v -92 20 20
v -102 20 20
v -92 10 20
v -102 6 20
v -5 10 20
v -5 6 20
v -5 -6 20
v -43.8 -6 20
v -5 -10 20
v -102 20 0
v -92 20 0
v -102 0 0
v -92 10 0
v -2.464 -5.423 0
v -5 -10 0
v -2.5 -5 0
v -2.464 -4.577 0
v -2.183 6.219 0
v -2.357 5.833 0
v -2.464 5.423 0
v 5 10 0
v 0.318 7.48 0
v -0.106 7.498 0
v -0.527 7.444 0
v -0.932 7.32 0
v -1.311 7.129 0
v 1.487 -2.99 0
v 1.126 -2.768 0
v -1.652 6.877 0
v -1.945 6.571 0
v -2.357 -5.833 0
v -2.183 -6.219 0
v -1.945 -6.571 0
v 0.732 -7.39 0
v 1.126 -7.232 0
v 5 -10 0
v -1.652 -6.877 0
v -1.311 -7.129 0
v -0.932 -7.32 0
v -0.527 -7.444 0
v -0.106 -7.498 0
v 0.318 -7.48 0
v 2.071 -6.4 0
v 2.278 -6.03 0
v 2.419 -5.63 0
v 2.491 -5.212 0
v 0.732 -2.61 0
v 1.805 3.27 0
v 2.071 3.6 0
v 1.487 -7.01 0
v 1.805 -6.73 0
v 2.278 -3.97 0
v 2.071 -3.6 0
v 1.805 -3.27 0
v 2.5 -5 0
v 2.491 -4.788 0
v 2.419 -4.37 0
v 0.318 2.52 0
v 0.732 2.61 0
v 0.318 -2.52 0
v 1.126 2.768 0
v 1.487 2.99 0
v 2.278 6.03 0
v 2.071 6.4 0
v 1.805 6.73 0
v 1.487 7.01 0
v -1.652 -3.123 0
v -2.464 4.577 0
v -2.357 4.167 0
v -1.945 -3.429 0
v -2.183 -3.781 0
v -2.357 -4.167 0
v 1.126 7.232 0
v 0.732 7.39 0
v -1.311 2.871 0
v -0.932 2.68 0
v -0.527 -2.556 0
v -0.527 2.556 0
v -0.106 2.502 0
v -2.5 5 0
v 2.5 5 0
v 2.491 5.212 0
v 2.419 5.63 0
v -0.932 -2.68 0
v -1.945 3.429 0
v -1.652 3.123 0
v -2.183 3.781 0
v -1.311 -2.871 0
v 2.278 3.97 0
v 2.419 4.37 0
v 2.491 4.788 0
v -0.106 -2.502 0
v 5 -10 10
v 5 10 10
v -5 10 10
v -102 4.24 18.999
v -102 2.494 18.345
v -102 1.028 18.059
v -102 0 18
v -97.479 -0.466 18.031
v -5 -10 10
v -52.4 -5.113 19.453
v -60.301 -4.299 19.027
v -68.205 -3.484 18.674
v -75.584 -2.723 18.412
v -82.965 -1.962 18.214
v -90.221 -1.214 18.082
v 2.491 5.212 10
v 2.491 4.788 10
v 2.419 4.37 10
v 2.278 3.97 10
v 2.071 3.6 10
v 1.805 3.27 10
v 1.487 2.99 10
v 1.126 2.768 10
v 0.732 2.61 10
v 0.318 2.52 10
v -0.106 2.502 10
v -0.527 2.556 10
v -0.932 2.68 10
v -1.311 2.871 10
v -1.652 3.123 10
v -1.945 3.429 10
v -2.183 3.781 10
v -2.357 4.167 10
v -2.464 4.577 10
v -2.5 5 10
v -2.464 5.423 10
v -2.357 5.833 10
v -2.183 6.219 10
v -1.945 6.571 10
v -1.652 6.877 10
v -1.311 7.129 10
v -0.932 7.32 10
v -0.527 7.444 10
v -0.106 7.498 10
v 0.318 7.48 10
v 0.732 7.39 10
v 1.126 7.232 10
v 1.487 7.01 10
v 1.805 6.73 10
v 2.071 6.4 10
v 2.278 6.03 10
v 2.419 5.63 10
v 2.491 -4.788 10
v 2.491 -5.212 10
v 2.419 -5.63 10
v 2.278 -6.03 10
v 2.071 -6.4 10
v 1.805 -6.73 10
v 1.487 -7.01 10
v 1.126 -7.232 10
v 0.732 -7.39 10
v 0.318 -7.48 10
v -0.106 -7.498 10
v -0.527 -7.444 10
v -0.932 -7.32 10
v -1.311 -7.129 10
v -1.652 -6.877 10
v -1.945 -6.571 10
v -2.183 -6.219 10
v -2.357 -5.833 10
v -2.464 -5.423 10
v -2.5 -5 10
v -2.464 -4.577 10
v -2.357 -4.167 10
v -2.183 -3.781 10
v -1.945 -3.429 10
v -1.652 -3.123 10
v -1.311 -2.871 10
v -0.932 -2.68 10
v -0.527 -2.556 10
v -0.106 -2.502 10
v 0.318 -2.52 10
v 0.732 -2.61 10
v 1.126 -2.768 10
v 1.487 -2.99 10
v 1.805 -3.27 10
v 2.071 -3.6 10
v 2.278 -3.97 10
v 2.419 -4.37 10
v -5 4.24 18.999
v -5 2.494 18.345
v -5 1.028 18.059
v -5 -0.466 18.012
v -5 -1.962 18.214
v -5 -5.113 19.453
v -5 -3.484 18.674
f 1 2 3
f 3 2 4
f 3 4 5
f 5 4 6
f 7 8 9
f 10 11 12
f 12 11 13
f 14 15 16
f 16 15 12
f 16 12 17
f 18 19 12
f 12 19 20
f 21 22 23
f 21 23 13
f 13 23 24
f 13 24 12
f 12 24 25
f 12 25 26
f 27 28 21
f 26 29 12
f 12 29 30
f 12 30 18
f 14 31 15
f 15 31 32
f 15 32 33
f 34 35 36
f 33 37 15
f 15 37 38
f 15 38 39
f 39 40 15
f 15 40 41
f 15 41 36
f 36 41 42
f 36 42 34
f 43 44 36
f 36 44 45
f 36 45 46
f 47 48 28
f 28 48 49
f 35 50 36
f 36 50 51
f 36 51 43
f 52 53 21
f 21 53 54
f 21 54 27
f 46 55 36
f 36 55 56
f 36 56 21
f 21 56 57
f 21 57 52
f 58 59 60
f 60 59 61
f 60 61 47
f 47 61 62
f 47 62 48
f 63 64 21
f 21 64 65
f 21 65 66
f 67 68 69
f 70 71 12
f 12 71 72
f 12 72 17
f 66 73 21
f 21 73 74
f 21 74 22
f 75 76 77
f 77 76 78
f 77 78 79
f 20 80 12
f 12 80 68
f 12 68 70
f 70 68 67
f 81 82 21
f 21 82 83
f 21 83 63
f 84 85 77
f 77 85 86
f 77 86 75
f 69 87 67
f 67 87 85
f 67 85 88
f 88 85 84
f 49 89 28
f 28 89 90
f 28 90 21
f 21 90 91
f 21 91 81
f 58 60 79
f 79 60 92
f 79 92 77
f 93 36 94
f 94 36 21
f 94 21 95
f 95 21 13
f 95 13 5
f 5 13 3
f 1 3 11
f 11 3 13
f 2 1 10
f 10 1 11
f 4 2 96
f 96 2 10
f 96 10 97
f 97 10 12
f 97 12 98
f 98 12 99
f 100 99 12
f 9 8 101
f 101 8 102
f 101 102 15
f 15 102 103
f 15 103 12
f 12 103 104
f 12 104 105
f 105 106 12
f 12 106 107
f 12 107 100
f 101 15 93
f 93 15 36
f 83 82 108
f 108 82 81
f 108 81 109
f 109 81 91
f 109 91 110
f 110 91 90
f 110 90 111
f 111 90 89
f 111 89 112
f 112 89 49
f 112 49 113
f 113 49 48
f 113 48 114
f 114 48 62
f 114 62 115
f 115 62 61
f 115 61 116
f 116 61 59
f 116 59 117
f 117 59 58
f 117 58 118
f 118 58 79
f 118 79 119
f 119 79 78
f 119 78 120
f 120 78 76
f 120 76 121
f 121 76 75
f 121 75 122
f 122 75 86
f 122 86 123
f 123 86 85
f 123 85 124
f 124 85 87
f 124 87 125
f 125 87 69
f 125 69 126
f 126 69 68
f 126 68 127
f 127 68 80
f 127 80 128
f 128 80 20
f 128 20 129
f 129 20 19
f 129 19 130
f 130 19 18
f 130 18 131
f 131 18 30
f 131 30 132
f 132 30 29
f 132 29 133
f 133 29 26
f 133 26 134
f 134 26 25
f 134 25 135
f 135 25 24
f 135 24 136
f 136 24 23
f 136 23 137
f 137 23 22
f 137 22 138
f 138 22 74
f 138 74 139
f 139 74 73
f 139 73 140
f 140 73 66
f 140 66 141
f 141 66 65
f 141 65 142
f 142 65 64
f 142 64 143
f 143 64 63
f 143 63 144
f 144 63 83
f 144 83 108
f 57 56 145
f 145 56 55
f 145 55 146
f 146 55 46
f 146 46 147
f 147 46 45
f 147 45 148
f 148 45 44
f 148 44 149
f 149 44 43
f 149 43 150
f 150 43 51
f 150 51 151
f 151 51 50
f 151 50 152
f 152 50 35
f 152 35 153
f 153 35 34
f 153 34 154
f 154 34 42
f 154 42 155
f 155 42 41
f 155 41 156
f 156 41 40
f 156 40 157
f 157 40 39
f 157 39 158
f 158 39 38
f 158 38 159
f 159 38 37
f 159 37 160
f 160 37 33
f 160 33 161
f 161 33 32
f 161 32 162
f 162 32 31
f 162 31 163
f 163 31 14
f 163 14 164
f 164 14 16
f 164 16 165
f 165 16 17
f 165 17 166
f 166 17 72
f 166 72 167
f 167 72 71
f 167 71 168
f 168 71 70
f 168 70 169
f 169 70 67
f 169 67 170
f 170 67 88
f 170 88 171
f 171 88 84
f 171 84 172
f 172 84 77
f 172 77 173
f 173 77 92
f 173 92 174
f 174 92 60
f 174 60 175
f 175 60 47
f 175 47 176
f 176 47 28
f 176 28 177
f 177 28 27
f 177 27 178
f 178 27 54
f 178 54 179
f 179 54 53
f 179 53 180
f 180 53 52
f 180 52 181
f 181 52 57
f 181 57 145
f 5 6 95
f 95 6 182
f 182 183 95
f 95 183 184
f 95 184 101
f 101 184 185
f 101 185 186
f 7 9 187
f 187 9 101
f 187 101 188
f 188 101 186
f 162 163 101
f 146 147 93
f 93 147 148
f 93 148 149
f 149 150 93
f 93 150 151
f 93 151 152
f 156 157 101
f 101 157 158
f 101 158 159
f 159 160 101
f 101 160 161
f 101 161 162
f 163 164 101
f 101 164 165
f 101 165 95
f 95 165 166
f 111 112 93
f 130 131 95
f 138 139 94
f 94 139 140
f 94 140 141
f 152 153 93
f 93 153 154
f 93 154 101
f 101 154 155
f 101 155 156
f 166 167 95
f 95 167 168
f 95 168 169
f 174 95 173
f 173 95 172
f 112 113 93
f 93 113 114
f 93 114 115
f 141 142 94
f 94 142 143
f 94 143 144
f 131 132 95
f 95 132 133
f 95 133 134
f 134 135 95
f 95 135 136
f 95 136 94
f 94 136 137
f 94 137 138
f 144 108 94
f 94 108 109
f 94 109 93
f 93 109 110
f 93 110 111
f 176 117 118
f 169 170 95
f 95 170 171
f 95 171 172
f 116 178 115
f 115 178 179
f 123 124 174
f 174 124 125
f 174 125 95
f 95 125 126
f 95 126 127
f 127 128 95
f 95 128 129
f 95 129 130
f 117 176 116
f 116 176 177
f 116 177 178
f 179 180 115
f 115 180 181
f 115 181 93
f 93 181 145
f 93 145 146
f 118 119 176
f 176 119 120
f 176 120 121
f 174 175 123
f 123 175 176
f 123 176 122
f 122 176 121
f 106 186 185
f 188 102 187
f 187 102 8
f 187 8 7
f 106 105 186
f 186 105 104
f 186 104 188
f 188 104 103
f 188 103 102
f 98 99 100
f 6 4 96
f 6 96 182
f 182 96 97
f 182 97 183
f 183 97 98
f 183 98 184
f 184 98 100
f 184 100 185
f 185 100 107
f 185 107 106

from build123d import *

# Parameters (mm, degrees)
ESQUISSE1_R             = 2.5
BOSS_EXTRU_1_DEPTH      = 20
ESQUISSE2_W             = 10
ESQUISSE2_H             = 20
ENL_V_MAT_EXTRU_1_DEPTH = 10
ENL_V_MAT_EXTRU_2_REACH = 112.675


with BuildPart() as part:
    # Esquisse1 → Boss.-Extru.1 (new body)
    with BuildSketch(Plane.XY):
        Polygon((-102, 0), (-5, -10), (5, -10), (5, 10), (-5, 10), (-92, 10), (-92, 20), (-102, 20), (-102, 10), align=None)
        with Locations((0, 5)):
            Circle(ESQUISSE1_R, mode=Mode.SUBTRACT)
        with Locations((0, -5)):
            Circle(ESQUISSE1_R, mode=Mode.SUBTRACT)
    extrude(amount=BOSS_EXTRU_1_DEPTH)

    # Esquisse2 → Enlèv. mat.-Extru.1 (cut)
    with BuildSketch(Plane.XY.offset(20)):
        Rectangle(ESQUISSE2_W, ESQUISSE2_H)
    extrude(amount=-ENL_V_MAT_EXTRU_1_DEPTH, mode=Mode.SUBTRACT)

    # Enlèv. mat.-Extru.2: up to this face of the body (flat: up to its plane)
    enl_v_mat_extru_2_end = Plane(part.part.faces().sort_by_distance((-5, 0, 15))[0])
    # Esquisse4 → Enlèv. mat.-Extru.2 (cut, up to the picked face)
    with BuildSketch(Plane.ZY.offset(102), mode=Mode.PRIVATE) as enl_v_mat_extru_2_sk1:
        with BuildLine():
            Line((20, 6), (20, -6))
            add(Edge.make_bspline(
                [(20, 6), (16, 0), (20, -6)],
                knots=[0, 0, 0, 1, 1, 1], degree=2))
        make_face()
    enl_v_mat_extru_2_tool1 = split(extrude(enl_v_mat_extru_2_sk1.sketch, amount=-ENL_V_MAT_EXTRU_2_REACH, mode=Mode.PRIVATE), bisect_by=enl_v_mat_extru_2_end, keep=Keep.BOTH, mode=Mode.PRIVATE)
    add(enl_v_mat_extru_2_tool1.solids().sort_by(Axis((-102, 0, 19.2), (1, 0, 0)))[0], mode=Mode.SUBTRACT)


solid = part.part
